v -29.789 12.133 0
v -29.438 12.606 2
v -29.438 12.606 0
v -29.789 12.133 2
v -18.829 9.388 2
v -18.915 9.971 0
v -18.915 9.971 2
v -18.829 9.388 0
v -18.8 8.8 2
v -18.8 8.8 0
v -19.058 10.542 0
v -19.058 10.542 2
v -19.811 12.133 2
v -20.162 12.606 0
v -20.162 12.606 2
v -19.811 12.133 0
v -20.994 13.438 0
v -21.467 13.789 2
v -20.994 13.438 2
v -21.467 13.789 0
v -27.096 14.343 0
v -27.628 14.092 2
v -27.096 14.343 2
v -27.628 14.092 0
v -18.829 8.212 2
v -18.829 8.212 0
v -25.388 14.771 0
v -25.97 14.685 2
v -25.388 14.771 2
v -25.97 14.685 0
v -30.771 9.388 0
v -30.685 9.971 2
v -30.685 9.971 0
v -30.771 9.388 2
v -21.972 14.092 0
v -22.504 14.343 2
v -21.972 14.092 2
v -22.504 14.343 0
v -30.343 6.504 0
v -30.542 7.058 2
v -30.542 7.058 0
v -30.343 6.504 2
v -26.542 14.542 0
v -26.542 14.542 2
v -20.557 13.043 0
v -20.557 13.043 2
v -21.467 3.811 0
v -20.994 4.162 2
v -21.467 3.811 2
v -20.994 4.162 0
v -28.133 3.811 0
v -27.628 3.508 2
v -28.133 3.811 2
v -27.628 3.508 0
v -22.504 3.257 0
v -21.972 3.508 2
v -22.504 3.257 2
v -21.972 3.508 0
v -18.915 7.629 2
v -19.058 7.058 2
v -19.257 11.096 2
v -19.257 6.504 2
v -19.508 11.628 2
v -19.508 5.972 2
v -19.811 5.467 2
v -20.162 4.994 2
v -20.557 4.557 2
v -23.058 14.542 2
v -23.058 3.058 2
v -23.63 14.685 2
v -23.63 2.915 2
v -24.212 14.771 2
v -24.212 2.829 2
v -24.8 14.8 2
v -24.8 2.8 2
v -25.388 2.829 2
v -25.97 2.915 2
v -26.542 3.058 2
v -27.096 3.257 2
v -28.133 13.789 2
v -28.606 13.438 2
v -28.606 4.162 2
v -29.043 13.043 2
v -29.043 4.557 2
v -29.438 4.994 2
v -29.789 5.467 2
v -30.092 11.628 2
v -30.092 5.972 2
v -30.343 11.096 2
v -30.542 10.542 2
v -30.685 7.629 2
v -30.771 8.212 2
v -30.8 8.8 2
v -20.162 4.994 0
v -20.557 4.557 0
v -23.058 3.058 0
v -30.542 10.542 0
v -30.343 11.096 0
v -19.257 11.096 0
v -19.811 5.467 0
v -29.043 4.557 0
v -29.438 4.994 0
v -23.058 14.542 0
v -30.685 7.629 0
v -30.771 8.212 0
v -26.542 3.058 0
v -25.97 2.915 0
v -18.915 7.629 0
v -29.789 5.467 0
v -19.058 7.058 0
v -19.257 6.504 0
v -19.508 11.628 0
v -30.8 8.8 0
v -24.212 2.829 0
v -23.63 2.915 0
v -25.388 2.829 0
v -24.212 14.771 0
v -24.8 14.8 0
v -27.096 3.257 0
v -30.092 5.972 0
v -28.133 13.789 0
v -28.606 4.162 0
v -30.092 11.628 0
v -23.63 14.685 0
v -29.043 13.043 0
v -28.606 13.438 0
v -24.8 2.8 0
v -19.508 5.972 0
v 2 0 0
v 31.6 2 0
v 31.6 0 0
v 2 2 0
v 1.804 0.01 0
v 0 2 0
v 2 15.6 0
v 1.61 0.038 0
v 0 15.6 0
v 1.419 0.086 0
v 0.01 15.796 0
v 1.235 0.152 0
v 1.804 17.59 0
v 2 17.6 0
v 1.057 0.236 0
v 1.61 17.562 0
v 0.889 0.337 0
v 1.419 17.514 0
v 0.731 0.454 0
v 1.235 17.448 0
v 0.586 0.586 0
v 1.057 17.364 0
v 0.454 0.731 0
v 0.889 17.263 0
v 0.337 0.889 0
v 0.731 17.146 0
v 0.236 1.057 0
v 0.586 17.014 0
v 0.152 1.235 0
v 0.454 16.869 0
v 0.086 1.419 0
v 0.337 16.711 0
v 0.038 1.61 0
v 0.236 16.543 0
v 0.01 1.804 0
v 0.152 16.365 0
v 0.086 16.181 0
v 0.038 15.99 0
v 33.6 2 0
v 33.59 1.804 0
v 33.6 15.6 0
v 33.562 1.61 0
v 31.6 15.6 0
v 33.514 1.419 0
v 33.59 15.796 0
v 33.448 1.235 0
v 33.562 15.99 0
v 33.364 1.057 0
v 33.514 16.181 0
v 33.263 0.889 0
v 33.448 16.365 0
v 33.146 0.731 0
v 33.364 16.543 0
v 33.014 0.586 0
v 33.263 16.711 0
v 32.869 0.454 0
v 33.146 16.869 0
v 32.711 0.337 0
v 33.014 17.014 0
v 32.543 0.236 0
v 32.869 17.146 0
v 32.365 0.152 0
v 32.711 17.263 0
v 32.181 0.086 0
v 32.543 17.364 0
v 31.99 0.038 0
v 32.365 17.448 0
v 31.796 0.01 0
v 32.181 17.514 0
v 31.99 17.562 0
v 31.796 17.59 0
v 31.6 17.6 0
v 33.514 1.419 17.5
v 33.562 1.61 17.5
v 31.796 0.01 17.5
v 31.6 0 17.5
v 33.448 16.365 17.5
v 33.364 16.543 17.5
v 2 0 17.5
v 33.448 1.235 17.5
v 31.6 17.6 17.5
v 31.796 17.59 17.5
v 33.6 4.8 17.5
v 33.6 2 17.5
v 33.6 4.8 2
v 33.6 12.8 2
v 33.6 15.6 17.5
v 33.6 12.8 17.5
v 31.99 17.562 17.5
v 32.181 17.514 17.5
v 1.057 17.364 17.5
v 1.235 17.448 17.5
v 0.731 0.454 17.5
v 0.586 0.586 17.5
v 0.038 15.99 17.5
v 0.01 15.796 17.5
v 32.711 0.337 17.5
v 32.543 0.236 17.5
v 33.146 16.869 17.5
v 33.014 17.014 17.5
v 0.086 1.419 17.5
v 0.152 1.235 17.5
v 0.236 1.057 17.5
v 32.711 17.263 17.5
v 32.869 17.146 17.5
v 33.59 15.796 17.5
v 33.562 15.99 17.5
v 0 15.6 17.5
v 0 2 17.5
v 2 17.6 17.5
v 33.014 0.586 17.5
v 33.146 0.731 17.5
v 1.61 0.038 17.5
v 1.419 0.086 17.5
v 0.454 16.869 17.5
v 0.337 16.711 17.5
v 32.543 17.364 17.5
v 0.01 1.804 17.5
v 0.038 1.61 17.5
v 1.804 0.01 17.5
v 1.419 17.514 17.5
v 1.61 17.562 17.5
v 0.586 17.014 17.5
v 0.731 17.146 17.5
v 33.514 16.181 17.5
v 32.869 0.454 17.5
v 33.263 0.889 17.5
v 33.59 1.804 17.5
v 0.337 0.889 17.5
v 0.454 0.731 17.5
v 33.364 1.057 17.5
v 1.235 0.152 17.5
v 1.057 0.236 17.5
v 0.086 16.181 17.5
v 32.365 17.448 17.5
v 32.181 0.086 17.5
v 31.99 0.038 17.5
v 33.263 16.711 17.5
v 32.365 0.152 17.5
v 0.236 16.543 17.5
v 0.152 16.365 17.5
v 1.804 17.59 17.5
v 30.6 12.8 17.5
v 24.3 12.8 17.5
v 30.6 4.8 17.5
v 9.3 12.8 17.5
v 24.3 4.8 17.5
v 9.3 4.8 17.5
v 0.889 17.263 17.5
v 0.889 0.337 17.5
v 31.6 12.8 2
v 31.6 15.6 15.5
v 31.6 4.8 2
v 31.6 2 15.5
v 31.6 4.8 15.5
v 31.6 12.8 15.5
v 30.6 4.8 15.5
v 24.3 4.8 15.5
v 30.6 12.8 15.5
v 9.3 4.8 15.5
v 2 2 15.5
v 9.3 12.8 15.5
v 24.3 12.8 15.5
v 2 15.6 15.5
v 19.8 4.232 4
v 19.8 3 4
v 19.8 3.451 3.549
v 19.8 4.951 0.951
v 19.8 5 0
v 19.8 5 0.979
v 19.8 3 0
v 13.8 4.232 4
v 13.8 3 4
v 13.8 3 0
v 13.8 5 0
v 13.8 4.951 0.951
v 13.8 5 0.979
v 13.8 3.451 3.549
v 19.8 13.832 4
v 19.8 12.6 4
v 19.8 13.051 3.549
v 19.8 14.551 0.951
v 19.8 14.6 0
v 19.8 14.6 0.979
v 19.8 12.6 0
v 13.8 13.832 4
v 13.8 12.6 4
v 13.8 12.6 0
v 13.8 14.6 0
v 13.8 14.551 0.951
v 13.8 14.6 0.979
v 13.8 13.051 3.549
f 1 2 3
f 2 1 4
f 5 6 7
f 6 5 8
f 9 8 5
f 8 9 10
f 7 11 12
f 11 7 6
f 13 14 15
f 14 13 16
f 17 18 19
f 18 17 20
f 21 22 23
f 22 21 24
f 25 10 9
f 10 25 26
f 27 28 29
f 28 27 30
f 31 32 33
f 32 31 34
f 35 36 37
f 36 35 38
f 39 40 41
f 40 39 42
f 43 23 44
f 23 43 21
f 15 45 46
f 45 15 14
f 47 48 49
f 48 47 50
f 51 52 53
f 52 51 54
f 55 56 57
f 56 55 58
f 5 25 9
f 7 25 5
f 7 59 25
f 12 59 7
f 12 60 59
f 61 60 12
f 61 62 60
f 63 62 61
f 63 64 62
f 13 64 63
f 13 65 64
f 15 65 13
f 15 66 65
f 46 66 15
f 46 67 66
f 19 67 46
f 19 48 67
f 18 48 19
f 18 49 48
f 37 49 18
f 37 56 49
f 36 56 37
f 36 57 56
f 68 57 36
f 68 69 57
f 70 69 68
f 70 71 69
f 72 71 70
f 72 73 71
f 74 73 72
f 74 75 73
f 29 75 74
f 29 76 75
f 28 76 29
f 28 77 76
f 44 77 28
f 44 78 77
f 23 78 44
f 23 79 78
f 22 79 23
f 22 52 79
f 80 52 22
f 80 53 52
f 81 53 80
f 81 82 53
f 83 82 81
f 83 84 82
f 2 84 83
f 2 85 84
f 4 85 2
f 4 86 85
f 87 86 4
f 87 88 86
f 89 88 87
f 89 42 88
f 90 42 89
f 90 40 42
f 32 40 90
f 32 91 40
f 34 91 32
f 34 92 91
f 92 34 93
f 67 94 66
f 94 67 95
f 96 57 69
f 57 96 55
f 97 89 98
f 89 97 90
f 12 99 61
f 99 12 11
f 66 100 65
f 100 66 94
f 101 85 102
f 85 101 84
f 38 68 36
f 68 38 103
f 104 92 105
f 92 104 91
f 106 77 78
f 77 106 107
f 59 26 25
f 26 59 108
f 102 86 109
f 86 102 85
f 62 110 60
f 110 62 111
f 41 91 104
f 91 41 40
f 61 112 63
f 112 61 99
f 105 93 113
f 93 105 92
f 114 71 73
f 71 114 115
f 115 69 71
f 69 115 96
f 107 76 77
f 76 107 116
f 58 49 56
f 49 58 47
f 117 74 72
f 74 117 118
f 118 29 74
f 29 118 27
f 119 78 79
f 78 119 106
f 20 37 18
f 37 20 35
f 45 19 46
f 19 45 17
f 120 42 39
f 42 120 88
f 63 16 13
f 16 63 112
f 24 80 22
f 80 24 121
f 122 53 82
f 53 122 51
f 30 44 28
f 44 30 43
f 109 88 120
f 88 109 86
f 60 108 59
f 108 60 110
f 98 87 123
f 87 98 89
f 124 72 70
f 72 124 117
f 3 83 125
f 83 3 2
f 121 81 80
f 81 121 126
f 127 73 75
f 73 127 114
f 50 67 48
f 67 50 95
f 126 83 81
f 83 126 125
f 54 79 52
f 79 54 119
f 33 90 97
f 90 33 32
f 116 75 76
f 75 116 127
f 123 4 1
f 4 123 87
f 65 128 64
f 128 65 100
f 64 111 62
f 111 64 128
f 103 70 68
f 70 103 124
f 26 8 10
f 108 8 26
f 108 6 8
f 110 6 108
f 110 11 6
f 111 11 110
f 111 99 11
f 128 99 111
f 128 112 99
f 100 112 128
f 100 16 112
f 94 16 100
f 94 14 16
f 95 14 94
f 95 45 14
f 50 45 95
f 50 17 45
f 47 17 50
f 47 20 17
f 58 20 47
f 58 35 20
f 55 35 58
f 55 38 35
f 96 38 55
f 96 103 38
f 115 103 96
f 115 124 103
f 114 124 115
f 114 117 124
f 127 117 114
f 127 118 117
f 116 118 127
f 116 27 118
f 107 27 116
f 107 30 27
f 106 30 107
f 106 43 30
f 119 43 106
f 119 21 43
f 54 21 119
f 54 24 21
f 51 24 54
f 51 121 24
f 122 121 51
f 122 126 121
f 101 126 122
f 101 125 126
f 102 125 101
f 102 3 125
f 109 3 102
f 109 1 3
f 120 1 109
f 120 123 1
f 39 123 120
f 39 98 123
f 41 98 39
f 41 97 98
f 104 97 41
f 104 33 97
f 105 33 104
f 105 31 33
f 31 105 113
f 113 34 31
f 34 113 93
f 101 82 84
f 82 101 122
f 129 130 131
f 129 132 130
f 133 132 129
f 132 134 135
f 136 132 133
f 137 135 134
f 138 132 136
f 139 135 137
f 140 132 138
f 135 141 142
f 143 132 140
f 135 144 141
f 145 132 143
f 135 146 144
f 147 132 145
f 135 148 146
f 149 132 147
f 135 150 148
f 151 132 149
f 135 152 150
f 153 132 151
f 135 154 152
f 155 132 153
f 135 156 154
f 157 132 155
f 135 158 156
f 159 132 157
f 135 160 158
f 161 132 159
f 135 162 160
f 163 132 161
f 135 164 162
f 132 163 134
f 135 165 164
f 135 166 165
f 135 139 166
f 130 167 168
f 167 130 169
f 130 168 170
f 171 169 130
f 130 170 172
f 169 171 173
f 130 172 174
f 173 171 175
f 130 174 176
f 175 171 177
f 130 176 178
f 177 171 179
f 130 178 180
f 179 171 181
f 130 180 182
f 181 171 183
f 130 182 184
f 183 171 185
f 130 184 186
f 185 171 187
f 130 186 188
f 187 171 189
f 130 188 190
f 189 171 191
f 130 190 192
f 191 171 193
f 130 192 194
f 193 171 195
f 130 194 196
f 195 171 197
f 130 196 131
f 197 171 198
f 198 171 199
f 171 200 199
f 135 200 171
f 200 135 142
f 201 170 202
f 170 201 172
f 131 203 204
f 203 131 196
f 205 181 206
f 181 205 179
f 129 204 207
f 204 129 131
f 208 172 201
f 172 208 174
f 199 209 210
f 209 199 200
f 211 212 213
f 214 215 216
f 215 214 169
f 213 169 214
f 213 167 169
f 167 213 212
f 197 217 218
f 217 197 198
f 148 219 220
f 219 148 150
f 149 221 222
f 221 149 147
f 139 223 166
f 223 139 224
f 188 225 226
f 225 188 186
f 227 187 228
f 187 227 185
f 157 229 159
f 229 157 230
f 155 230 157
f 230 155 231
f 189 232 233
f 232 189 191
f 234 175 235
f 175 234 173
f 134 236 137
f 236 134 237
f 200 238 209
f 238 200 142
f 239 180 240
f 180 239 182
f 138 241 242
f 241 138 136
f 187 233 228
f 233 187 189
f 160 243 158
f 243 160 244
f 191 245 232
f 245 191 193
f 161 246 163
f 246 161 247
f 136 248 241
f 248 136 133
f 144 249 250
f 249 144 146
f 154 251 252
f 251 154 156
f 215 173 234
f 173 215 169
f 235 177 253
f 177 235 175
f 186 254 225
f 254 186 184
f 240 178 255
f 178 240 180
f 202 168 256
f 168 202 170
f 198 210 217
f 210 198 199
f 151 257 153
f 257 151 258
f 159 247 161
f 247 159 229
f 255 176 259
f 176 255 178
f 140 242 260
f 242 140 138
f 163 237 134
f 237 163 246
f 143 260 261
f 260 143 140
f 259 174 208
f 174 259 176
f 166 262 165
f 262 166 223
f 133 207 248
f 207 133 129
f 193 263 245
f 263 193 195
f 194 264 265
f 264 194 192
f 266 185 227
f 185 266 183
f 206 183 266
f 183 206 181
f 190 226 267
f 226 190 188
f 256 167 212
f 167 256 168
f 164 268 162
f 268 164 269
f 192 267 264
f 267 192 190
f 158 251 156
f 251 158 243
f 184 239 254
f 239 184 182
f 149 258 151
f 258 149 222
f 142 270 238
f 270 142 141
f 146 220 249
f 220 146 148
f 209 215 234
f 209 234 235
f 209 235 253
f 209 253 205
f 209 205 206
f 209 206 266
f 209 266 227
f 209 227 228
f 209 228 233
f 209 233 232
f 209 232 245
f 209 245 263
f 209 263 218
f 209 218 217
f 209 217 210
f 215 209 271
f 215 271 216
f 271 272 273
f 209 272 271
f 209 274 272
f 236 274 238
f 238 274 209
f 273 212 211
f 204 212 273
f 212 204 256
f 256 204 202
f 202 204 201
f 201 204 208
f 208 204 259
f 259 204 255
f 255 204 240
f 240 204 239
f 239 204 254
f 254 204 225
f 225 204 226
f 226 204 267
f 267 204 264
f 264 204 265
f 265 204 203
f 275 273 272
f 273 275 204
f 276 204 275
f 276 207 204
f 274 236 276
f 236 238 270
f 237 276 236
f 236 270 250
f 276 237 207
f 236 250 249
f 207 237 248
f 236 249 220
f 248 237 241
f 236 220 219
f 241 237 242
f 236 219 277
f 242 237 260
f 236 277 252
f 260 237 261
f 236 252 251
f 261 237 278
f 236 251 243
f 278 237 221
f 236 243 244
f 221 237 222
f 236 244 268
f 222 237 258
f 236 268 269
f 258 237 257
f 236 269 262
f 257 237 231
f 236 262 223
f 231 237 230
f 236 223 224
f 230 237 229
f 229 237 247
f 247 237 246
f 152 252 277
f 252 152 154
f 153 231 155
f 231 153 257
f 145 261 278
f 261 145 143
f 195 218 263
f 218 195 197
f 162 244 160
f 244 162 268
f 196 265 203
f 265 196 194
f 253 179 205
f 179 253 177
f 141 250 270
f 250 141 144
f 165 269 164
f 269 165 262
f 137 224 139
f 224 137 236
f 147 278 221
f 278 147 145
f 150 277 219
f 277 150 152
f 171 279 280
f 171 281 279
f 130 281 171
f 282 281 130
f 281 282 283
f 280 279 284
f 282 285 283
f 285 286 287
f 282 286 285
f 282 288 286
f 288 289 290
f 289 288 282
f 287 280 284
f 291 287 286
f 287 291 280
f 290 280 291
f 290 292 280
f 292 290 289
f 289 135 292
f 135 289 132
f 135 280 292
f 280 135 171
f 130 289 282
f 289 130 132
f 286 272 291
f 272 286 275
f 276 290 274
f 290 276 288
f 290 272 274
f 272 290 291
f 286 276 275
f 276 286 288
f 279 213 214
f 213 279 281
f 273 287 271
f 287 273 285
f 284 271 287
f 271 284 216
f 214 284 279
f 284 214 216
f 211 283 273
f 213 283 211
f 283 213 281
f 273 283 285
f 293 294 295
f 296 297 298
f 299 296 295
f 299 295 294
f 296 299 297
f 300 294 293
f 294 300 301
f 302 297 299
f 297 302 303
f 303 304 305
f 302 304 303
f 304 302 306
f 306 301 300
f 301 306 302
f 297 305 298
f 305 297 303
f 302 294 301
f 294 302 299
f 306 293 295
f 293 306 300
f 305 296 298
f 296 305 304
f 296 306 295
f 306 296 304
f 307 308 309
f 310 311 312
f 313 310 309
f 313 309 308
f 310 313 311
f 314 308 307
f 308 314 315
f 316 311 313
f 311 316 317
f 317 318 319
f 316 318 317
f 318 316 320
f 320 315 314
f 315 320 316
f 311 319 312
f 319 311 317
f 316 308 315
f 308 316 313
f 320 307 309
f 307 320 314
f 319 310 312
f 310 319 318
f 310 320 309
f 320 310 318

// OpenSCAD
// ============================================================================
// Luna's Baby Mobile - Power Switch Mount
// ============================================================================
// Mount/bracket for Power Switch Board (XA007)
// Dimensions: 29×13×15.2mm with XH2.54 2-Pin Connector
// ============================================================================

include <config.scad>

// ----------------------------------------------------------------------------
// SWITCH MOUNT CONFIGURATION
// ----------------------------------------------------------------------------

// Internal dimensions (switch + clearance)
switch_pocket_length = switch_length + switch_mount_clearance * 2;
switch_pocket_width = switch_width + switch_mount_clearance * 2;
switch_pocket_height = switch_height + switch_mount_clearance;

// Mount wall thickness
wall = switch_mount_wall;

// ----------------------------------------------------------------------------
// PANEL MOUNT BRACKET
// ----------------------------------------------------------------------------
// Mounts the switch to a panel/housing with the actuator accessible

module switch_panel_mount() {
    bracket_length = switch_pocket_length + wall * 2;
    bracket_width = switch_pocket_width + wall * 2;
    bracket_height = switch_pocket_height + wall;
    
    // Actuator window dimensions (where the switch toggle is)
    actuator_window_length = 15;
    actuator_window_width = 8;
    
    difference() {
        union() {
            // Main bracket body
            rounded_box(bracket_length, bracket_width, bracket_height, 2);
            
            // Mounting flanges
            for (x = [-1, 1]) {
                translate([x * (bracket_length/2 + 8), bracket_width/2, 0])
                cylinder(d = 12, h = wall);
            }
        }
        
        // Switch pocket (open bottom)
        translate([wall, wall, -1])
        cube([switch_pocket_length, switch_pocket_width, switch_pocket_height + 1]);
        
        // Actuator access window (top)
        translate([bracket_length/2 - actuator_window_length/2, 
                   bracket_width/2 - actuator_window_width/2, 
                   bracket_height - wall - 1])
        cube([actuator_window_length, actuator_window_width, wall + 2]);
        
        // Wire exit slot
        translate([bracket_length - wall - 1, bracket_width/2 - 4, wall])
        cube([wall + 2, 8, switch_pocket_height]);
        
        // Mounting screw holes
        for (x = [-1, 1]) {
            translate([bracket_length/2 + x * (bracket_length/2 + 8), bracket_width/2, -1])
            cylinder(d = 3 + tolerance, h = wall + 2);
        }
    }
    
    // Retention clips inside pocket
    for (y = [wall + 2, bracket_width - wall - 2]) {
        translate([bracket_length/2, y, wall])
        switch_retention_clip();
    }
}

// Small retention clip
module switch_retention_clip() {
    clip_w = 6;
    clip_h = 4;
    
    difference() {
        cube([clip_w, 2, clip_h], center = true);
        translate([0, 1.5, 1])
        rotate([30, 0, 0])
        cube([clip_w + 1, 3, 3], center = true);
    }
}

// Rounded box helper
module rounded_box(l, w, h, r) {
    hull() {
        for (x = [r, l-r]) {
            for (y = [r, w-r]) {
                translate([x, y, 0])
                cylinder(r = r, h = h);
            }
        }
    }
}

// ----------------------------------------------------------------------------
// SNAP-IN MOUNT
// ----------------------------------------------------------------------------
// Simple snap-fit mount for quick installation

module switch_snap_mount() {
    base_length = switch_pocket_length + wall * 2;
    base_width = switch_pocket_width + wall * 2;
    
    // Base plate
    cube([base_length, base_width, wall]);
    
    // Side rails with snap lips
    for (x = [0, base_length - wall]) {
        translate([x, 0, wall])
        difference() {
            cube([wall, base_width, switch_height - 5]);
            // Angled entry
            translate([-1, -1, switch_height - 8])
            rotate([0, 30, 0])
            cube([5, base_width + 2, 5]);
        }
        
        // Snap lip
        translate([x + (x == 0 ? wall - 0.5 : 0.5), 0, switch_height - 5])
        cube([1, base_width, 2]);
    }
    
    // Wire guide
    translate([base_length, base_width/2 - 4, 0])
    cube([10, 8, wall]);
}

// ----------------------------------------------------------------------------
// INTEGRATED HOUSING CUTOUT (for embedding in another part)
// ----------------------------------------------------------------------------
// Use this as a negative to create a switch pocket in another housing

module switch_cutout() {
    // Main switch pocket
    cube([switch_pocket_length, switch_pocket_width, switch_pocket_height]);
    
    // Actuator clearance (extends upward)
    translate([switch_pocket_length/2 - 8, switch_pocket_width/2 - 5, switch_pocket_height - 1])
    cube([16, 10, 10]);
    
    // Wire exit channel
    translate([switch_pocket_length - 1, switch_pocket_width/2 - 5, 0])
    cube([10, 10, switch_pocket_height/2]);
}

// ----------------------------------------------------------------------------
// SWITCH MODULE DUMMY (for visualization)
// ----------------------------------------------------------------------------

module switch_dummy() {
    color(color_switch) {
        // PCB base
        cube([switch_length, switch_width, 2], center = true);
        
        // Switch body
        translate([0, 0, 2])
        cube([15, 10, 8], center = true);
        
        // Actuator/toggle
        translate([0, 0, 6 + switch_actuator_height/2])
        cube([8, 6, switch_actuator_height], center = true);
        
        // Connector
        translate([switch_length/2 - 3, 0, -2])
        cube([6, 8, 4], center = true);
    }
}

// ----------------------------------------------------------------------------
// RENDER
// ----------------------------------------------------------------------------

if ($preview) {
    switch_panel_mount();
    
    // Show switch in position
    translate([switch_mount_wall + switch_mount_clearance + switch_length/2, 
               switch_mount_wall + switch_mount_clearance + switch_width/2, 
               switch_mount_wall + switch_height/2])
    switch_dummy();
} else {
    switch_panel_mount();
}

// Uncomment to export specific parts:
// switch_panel_mount();
// switch_snap_mount();
